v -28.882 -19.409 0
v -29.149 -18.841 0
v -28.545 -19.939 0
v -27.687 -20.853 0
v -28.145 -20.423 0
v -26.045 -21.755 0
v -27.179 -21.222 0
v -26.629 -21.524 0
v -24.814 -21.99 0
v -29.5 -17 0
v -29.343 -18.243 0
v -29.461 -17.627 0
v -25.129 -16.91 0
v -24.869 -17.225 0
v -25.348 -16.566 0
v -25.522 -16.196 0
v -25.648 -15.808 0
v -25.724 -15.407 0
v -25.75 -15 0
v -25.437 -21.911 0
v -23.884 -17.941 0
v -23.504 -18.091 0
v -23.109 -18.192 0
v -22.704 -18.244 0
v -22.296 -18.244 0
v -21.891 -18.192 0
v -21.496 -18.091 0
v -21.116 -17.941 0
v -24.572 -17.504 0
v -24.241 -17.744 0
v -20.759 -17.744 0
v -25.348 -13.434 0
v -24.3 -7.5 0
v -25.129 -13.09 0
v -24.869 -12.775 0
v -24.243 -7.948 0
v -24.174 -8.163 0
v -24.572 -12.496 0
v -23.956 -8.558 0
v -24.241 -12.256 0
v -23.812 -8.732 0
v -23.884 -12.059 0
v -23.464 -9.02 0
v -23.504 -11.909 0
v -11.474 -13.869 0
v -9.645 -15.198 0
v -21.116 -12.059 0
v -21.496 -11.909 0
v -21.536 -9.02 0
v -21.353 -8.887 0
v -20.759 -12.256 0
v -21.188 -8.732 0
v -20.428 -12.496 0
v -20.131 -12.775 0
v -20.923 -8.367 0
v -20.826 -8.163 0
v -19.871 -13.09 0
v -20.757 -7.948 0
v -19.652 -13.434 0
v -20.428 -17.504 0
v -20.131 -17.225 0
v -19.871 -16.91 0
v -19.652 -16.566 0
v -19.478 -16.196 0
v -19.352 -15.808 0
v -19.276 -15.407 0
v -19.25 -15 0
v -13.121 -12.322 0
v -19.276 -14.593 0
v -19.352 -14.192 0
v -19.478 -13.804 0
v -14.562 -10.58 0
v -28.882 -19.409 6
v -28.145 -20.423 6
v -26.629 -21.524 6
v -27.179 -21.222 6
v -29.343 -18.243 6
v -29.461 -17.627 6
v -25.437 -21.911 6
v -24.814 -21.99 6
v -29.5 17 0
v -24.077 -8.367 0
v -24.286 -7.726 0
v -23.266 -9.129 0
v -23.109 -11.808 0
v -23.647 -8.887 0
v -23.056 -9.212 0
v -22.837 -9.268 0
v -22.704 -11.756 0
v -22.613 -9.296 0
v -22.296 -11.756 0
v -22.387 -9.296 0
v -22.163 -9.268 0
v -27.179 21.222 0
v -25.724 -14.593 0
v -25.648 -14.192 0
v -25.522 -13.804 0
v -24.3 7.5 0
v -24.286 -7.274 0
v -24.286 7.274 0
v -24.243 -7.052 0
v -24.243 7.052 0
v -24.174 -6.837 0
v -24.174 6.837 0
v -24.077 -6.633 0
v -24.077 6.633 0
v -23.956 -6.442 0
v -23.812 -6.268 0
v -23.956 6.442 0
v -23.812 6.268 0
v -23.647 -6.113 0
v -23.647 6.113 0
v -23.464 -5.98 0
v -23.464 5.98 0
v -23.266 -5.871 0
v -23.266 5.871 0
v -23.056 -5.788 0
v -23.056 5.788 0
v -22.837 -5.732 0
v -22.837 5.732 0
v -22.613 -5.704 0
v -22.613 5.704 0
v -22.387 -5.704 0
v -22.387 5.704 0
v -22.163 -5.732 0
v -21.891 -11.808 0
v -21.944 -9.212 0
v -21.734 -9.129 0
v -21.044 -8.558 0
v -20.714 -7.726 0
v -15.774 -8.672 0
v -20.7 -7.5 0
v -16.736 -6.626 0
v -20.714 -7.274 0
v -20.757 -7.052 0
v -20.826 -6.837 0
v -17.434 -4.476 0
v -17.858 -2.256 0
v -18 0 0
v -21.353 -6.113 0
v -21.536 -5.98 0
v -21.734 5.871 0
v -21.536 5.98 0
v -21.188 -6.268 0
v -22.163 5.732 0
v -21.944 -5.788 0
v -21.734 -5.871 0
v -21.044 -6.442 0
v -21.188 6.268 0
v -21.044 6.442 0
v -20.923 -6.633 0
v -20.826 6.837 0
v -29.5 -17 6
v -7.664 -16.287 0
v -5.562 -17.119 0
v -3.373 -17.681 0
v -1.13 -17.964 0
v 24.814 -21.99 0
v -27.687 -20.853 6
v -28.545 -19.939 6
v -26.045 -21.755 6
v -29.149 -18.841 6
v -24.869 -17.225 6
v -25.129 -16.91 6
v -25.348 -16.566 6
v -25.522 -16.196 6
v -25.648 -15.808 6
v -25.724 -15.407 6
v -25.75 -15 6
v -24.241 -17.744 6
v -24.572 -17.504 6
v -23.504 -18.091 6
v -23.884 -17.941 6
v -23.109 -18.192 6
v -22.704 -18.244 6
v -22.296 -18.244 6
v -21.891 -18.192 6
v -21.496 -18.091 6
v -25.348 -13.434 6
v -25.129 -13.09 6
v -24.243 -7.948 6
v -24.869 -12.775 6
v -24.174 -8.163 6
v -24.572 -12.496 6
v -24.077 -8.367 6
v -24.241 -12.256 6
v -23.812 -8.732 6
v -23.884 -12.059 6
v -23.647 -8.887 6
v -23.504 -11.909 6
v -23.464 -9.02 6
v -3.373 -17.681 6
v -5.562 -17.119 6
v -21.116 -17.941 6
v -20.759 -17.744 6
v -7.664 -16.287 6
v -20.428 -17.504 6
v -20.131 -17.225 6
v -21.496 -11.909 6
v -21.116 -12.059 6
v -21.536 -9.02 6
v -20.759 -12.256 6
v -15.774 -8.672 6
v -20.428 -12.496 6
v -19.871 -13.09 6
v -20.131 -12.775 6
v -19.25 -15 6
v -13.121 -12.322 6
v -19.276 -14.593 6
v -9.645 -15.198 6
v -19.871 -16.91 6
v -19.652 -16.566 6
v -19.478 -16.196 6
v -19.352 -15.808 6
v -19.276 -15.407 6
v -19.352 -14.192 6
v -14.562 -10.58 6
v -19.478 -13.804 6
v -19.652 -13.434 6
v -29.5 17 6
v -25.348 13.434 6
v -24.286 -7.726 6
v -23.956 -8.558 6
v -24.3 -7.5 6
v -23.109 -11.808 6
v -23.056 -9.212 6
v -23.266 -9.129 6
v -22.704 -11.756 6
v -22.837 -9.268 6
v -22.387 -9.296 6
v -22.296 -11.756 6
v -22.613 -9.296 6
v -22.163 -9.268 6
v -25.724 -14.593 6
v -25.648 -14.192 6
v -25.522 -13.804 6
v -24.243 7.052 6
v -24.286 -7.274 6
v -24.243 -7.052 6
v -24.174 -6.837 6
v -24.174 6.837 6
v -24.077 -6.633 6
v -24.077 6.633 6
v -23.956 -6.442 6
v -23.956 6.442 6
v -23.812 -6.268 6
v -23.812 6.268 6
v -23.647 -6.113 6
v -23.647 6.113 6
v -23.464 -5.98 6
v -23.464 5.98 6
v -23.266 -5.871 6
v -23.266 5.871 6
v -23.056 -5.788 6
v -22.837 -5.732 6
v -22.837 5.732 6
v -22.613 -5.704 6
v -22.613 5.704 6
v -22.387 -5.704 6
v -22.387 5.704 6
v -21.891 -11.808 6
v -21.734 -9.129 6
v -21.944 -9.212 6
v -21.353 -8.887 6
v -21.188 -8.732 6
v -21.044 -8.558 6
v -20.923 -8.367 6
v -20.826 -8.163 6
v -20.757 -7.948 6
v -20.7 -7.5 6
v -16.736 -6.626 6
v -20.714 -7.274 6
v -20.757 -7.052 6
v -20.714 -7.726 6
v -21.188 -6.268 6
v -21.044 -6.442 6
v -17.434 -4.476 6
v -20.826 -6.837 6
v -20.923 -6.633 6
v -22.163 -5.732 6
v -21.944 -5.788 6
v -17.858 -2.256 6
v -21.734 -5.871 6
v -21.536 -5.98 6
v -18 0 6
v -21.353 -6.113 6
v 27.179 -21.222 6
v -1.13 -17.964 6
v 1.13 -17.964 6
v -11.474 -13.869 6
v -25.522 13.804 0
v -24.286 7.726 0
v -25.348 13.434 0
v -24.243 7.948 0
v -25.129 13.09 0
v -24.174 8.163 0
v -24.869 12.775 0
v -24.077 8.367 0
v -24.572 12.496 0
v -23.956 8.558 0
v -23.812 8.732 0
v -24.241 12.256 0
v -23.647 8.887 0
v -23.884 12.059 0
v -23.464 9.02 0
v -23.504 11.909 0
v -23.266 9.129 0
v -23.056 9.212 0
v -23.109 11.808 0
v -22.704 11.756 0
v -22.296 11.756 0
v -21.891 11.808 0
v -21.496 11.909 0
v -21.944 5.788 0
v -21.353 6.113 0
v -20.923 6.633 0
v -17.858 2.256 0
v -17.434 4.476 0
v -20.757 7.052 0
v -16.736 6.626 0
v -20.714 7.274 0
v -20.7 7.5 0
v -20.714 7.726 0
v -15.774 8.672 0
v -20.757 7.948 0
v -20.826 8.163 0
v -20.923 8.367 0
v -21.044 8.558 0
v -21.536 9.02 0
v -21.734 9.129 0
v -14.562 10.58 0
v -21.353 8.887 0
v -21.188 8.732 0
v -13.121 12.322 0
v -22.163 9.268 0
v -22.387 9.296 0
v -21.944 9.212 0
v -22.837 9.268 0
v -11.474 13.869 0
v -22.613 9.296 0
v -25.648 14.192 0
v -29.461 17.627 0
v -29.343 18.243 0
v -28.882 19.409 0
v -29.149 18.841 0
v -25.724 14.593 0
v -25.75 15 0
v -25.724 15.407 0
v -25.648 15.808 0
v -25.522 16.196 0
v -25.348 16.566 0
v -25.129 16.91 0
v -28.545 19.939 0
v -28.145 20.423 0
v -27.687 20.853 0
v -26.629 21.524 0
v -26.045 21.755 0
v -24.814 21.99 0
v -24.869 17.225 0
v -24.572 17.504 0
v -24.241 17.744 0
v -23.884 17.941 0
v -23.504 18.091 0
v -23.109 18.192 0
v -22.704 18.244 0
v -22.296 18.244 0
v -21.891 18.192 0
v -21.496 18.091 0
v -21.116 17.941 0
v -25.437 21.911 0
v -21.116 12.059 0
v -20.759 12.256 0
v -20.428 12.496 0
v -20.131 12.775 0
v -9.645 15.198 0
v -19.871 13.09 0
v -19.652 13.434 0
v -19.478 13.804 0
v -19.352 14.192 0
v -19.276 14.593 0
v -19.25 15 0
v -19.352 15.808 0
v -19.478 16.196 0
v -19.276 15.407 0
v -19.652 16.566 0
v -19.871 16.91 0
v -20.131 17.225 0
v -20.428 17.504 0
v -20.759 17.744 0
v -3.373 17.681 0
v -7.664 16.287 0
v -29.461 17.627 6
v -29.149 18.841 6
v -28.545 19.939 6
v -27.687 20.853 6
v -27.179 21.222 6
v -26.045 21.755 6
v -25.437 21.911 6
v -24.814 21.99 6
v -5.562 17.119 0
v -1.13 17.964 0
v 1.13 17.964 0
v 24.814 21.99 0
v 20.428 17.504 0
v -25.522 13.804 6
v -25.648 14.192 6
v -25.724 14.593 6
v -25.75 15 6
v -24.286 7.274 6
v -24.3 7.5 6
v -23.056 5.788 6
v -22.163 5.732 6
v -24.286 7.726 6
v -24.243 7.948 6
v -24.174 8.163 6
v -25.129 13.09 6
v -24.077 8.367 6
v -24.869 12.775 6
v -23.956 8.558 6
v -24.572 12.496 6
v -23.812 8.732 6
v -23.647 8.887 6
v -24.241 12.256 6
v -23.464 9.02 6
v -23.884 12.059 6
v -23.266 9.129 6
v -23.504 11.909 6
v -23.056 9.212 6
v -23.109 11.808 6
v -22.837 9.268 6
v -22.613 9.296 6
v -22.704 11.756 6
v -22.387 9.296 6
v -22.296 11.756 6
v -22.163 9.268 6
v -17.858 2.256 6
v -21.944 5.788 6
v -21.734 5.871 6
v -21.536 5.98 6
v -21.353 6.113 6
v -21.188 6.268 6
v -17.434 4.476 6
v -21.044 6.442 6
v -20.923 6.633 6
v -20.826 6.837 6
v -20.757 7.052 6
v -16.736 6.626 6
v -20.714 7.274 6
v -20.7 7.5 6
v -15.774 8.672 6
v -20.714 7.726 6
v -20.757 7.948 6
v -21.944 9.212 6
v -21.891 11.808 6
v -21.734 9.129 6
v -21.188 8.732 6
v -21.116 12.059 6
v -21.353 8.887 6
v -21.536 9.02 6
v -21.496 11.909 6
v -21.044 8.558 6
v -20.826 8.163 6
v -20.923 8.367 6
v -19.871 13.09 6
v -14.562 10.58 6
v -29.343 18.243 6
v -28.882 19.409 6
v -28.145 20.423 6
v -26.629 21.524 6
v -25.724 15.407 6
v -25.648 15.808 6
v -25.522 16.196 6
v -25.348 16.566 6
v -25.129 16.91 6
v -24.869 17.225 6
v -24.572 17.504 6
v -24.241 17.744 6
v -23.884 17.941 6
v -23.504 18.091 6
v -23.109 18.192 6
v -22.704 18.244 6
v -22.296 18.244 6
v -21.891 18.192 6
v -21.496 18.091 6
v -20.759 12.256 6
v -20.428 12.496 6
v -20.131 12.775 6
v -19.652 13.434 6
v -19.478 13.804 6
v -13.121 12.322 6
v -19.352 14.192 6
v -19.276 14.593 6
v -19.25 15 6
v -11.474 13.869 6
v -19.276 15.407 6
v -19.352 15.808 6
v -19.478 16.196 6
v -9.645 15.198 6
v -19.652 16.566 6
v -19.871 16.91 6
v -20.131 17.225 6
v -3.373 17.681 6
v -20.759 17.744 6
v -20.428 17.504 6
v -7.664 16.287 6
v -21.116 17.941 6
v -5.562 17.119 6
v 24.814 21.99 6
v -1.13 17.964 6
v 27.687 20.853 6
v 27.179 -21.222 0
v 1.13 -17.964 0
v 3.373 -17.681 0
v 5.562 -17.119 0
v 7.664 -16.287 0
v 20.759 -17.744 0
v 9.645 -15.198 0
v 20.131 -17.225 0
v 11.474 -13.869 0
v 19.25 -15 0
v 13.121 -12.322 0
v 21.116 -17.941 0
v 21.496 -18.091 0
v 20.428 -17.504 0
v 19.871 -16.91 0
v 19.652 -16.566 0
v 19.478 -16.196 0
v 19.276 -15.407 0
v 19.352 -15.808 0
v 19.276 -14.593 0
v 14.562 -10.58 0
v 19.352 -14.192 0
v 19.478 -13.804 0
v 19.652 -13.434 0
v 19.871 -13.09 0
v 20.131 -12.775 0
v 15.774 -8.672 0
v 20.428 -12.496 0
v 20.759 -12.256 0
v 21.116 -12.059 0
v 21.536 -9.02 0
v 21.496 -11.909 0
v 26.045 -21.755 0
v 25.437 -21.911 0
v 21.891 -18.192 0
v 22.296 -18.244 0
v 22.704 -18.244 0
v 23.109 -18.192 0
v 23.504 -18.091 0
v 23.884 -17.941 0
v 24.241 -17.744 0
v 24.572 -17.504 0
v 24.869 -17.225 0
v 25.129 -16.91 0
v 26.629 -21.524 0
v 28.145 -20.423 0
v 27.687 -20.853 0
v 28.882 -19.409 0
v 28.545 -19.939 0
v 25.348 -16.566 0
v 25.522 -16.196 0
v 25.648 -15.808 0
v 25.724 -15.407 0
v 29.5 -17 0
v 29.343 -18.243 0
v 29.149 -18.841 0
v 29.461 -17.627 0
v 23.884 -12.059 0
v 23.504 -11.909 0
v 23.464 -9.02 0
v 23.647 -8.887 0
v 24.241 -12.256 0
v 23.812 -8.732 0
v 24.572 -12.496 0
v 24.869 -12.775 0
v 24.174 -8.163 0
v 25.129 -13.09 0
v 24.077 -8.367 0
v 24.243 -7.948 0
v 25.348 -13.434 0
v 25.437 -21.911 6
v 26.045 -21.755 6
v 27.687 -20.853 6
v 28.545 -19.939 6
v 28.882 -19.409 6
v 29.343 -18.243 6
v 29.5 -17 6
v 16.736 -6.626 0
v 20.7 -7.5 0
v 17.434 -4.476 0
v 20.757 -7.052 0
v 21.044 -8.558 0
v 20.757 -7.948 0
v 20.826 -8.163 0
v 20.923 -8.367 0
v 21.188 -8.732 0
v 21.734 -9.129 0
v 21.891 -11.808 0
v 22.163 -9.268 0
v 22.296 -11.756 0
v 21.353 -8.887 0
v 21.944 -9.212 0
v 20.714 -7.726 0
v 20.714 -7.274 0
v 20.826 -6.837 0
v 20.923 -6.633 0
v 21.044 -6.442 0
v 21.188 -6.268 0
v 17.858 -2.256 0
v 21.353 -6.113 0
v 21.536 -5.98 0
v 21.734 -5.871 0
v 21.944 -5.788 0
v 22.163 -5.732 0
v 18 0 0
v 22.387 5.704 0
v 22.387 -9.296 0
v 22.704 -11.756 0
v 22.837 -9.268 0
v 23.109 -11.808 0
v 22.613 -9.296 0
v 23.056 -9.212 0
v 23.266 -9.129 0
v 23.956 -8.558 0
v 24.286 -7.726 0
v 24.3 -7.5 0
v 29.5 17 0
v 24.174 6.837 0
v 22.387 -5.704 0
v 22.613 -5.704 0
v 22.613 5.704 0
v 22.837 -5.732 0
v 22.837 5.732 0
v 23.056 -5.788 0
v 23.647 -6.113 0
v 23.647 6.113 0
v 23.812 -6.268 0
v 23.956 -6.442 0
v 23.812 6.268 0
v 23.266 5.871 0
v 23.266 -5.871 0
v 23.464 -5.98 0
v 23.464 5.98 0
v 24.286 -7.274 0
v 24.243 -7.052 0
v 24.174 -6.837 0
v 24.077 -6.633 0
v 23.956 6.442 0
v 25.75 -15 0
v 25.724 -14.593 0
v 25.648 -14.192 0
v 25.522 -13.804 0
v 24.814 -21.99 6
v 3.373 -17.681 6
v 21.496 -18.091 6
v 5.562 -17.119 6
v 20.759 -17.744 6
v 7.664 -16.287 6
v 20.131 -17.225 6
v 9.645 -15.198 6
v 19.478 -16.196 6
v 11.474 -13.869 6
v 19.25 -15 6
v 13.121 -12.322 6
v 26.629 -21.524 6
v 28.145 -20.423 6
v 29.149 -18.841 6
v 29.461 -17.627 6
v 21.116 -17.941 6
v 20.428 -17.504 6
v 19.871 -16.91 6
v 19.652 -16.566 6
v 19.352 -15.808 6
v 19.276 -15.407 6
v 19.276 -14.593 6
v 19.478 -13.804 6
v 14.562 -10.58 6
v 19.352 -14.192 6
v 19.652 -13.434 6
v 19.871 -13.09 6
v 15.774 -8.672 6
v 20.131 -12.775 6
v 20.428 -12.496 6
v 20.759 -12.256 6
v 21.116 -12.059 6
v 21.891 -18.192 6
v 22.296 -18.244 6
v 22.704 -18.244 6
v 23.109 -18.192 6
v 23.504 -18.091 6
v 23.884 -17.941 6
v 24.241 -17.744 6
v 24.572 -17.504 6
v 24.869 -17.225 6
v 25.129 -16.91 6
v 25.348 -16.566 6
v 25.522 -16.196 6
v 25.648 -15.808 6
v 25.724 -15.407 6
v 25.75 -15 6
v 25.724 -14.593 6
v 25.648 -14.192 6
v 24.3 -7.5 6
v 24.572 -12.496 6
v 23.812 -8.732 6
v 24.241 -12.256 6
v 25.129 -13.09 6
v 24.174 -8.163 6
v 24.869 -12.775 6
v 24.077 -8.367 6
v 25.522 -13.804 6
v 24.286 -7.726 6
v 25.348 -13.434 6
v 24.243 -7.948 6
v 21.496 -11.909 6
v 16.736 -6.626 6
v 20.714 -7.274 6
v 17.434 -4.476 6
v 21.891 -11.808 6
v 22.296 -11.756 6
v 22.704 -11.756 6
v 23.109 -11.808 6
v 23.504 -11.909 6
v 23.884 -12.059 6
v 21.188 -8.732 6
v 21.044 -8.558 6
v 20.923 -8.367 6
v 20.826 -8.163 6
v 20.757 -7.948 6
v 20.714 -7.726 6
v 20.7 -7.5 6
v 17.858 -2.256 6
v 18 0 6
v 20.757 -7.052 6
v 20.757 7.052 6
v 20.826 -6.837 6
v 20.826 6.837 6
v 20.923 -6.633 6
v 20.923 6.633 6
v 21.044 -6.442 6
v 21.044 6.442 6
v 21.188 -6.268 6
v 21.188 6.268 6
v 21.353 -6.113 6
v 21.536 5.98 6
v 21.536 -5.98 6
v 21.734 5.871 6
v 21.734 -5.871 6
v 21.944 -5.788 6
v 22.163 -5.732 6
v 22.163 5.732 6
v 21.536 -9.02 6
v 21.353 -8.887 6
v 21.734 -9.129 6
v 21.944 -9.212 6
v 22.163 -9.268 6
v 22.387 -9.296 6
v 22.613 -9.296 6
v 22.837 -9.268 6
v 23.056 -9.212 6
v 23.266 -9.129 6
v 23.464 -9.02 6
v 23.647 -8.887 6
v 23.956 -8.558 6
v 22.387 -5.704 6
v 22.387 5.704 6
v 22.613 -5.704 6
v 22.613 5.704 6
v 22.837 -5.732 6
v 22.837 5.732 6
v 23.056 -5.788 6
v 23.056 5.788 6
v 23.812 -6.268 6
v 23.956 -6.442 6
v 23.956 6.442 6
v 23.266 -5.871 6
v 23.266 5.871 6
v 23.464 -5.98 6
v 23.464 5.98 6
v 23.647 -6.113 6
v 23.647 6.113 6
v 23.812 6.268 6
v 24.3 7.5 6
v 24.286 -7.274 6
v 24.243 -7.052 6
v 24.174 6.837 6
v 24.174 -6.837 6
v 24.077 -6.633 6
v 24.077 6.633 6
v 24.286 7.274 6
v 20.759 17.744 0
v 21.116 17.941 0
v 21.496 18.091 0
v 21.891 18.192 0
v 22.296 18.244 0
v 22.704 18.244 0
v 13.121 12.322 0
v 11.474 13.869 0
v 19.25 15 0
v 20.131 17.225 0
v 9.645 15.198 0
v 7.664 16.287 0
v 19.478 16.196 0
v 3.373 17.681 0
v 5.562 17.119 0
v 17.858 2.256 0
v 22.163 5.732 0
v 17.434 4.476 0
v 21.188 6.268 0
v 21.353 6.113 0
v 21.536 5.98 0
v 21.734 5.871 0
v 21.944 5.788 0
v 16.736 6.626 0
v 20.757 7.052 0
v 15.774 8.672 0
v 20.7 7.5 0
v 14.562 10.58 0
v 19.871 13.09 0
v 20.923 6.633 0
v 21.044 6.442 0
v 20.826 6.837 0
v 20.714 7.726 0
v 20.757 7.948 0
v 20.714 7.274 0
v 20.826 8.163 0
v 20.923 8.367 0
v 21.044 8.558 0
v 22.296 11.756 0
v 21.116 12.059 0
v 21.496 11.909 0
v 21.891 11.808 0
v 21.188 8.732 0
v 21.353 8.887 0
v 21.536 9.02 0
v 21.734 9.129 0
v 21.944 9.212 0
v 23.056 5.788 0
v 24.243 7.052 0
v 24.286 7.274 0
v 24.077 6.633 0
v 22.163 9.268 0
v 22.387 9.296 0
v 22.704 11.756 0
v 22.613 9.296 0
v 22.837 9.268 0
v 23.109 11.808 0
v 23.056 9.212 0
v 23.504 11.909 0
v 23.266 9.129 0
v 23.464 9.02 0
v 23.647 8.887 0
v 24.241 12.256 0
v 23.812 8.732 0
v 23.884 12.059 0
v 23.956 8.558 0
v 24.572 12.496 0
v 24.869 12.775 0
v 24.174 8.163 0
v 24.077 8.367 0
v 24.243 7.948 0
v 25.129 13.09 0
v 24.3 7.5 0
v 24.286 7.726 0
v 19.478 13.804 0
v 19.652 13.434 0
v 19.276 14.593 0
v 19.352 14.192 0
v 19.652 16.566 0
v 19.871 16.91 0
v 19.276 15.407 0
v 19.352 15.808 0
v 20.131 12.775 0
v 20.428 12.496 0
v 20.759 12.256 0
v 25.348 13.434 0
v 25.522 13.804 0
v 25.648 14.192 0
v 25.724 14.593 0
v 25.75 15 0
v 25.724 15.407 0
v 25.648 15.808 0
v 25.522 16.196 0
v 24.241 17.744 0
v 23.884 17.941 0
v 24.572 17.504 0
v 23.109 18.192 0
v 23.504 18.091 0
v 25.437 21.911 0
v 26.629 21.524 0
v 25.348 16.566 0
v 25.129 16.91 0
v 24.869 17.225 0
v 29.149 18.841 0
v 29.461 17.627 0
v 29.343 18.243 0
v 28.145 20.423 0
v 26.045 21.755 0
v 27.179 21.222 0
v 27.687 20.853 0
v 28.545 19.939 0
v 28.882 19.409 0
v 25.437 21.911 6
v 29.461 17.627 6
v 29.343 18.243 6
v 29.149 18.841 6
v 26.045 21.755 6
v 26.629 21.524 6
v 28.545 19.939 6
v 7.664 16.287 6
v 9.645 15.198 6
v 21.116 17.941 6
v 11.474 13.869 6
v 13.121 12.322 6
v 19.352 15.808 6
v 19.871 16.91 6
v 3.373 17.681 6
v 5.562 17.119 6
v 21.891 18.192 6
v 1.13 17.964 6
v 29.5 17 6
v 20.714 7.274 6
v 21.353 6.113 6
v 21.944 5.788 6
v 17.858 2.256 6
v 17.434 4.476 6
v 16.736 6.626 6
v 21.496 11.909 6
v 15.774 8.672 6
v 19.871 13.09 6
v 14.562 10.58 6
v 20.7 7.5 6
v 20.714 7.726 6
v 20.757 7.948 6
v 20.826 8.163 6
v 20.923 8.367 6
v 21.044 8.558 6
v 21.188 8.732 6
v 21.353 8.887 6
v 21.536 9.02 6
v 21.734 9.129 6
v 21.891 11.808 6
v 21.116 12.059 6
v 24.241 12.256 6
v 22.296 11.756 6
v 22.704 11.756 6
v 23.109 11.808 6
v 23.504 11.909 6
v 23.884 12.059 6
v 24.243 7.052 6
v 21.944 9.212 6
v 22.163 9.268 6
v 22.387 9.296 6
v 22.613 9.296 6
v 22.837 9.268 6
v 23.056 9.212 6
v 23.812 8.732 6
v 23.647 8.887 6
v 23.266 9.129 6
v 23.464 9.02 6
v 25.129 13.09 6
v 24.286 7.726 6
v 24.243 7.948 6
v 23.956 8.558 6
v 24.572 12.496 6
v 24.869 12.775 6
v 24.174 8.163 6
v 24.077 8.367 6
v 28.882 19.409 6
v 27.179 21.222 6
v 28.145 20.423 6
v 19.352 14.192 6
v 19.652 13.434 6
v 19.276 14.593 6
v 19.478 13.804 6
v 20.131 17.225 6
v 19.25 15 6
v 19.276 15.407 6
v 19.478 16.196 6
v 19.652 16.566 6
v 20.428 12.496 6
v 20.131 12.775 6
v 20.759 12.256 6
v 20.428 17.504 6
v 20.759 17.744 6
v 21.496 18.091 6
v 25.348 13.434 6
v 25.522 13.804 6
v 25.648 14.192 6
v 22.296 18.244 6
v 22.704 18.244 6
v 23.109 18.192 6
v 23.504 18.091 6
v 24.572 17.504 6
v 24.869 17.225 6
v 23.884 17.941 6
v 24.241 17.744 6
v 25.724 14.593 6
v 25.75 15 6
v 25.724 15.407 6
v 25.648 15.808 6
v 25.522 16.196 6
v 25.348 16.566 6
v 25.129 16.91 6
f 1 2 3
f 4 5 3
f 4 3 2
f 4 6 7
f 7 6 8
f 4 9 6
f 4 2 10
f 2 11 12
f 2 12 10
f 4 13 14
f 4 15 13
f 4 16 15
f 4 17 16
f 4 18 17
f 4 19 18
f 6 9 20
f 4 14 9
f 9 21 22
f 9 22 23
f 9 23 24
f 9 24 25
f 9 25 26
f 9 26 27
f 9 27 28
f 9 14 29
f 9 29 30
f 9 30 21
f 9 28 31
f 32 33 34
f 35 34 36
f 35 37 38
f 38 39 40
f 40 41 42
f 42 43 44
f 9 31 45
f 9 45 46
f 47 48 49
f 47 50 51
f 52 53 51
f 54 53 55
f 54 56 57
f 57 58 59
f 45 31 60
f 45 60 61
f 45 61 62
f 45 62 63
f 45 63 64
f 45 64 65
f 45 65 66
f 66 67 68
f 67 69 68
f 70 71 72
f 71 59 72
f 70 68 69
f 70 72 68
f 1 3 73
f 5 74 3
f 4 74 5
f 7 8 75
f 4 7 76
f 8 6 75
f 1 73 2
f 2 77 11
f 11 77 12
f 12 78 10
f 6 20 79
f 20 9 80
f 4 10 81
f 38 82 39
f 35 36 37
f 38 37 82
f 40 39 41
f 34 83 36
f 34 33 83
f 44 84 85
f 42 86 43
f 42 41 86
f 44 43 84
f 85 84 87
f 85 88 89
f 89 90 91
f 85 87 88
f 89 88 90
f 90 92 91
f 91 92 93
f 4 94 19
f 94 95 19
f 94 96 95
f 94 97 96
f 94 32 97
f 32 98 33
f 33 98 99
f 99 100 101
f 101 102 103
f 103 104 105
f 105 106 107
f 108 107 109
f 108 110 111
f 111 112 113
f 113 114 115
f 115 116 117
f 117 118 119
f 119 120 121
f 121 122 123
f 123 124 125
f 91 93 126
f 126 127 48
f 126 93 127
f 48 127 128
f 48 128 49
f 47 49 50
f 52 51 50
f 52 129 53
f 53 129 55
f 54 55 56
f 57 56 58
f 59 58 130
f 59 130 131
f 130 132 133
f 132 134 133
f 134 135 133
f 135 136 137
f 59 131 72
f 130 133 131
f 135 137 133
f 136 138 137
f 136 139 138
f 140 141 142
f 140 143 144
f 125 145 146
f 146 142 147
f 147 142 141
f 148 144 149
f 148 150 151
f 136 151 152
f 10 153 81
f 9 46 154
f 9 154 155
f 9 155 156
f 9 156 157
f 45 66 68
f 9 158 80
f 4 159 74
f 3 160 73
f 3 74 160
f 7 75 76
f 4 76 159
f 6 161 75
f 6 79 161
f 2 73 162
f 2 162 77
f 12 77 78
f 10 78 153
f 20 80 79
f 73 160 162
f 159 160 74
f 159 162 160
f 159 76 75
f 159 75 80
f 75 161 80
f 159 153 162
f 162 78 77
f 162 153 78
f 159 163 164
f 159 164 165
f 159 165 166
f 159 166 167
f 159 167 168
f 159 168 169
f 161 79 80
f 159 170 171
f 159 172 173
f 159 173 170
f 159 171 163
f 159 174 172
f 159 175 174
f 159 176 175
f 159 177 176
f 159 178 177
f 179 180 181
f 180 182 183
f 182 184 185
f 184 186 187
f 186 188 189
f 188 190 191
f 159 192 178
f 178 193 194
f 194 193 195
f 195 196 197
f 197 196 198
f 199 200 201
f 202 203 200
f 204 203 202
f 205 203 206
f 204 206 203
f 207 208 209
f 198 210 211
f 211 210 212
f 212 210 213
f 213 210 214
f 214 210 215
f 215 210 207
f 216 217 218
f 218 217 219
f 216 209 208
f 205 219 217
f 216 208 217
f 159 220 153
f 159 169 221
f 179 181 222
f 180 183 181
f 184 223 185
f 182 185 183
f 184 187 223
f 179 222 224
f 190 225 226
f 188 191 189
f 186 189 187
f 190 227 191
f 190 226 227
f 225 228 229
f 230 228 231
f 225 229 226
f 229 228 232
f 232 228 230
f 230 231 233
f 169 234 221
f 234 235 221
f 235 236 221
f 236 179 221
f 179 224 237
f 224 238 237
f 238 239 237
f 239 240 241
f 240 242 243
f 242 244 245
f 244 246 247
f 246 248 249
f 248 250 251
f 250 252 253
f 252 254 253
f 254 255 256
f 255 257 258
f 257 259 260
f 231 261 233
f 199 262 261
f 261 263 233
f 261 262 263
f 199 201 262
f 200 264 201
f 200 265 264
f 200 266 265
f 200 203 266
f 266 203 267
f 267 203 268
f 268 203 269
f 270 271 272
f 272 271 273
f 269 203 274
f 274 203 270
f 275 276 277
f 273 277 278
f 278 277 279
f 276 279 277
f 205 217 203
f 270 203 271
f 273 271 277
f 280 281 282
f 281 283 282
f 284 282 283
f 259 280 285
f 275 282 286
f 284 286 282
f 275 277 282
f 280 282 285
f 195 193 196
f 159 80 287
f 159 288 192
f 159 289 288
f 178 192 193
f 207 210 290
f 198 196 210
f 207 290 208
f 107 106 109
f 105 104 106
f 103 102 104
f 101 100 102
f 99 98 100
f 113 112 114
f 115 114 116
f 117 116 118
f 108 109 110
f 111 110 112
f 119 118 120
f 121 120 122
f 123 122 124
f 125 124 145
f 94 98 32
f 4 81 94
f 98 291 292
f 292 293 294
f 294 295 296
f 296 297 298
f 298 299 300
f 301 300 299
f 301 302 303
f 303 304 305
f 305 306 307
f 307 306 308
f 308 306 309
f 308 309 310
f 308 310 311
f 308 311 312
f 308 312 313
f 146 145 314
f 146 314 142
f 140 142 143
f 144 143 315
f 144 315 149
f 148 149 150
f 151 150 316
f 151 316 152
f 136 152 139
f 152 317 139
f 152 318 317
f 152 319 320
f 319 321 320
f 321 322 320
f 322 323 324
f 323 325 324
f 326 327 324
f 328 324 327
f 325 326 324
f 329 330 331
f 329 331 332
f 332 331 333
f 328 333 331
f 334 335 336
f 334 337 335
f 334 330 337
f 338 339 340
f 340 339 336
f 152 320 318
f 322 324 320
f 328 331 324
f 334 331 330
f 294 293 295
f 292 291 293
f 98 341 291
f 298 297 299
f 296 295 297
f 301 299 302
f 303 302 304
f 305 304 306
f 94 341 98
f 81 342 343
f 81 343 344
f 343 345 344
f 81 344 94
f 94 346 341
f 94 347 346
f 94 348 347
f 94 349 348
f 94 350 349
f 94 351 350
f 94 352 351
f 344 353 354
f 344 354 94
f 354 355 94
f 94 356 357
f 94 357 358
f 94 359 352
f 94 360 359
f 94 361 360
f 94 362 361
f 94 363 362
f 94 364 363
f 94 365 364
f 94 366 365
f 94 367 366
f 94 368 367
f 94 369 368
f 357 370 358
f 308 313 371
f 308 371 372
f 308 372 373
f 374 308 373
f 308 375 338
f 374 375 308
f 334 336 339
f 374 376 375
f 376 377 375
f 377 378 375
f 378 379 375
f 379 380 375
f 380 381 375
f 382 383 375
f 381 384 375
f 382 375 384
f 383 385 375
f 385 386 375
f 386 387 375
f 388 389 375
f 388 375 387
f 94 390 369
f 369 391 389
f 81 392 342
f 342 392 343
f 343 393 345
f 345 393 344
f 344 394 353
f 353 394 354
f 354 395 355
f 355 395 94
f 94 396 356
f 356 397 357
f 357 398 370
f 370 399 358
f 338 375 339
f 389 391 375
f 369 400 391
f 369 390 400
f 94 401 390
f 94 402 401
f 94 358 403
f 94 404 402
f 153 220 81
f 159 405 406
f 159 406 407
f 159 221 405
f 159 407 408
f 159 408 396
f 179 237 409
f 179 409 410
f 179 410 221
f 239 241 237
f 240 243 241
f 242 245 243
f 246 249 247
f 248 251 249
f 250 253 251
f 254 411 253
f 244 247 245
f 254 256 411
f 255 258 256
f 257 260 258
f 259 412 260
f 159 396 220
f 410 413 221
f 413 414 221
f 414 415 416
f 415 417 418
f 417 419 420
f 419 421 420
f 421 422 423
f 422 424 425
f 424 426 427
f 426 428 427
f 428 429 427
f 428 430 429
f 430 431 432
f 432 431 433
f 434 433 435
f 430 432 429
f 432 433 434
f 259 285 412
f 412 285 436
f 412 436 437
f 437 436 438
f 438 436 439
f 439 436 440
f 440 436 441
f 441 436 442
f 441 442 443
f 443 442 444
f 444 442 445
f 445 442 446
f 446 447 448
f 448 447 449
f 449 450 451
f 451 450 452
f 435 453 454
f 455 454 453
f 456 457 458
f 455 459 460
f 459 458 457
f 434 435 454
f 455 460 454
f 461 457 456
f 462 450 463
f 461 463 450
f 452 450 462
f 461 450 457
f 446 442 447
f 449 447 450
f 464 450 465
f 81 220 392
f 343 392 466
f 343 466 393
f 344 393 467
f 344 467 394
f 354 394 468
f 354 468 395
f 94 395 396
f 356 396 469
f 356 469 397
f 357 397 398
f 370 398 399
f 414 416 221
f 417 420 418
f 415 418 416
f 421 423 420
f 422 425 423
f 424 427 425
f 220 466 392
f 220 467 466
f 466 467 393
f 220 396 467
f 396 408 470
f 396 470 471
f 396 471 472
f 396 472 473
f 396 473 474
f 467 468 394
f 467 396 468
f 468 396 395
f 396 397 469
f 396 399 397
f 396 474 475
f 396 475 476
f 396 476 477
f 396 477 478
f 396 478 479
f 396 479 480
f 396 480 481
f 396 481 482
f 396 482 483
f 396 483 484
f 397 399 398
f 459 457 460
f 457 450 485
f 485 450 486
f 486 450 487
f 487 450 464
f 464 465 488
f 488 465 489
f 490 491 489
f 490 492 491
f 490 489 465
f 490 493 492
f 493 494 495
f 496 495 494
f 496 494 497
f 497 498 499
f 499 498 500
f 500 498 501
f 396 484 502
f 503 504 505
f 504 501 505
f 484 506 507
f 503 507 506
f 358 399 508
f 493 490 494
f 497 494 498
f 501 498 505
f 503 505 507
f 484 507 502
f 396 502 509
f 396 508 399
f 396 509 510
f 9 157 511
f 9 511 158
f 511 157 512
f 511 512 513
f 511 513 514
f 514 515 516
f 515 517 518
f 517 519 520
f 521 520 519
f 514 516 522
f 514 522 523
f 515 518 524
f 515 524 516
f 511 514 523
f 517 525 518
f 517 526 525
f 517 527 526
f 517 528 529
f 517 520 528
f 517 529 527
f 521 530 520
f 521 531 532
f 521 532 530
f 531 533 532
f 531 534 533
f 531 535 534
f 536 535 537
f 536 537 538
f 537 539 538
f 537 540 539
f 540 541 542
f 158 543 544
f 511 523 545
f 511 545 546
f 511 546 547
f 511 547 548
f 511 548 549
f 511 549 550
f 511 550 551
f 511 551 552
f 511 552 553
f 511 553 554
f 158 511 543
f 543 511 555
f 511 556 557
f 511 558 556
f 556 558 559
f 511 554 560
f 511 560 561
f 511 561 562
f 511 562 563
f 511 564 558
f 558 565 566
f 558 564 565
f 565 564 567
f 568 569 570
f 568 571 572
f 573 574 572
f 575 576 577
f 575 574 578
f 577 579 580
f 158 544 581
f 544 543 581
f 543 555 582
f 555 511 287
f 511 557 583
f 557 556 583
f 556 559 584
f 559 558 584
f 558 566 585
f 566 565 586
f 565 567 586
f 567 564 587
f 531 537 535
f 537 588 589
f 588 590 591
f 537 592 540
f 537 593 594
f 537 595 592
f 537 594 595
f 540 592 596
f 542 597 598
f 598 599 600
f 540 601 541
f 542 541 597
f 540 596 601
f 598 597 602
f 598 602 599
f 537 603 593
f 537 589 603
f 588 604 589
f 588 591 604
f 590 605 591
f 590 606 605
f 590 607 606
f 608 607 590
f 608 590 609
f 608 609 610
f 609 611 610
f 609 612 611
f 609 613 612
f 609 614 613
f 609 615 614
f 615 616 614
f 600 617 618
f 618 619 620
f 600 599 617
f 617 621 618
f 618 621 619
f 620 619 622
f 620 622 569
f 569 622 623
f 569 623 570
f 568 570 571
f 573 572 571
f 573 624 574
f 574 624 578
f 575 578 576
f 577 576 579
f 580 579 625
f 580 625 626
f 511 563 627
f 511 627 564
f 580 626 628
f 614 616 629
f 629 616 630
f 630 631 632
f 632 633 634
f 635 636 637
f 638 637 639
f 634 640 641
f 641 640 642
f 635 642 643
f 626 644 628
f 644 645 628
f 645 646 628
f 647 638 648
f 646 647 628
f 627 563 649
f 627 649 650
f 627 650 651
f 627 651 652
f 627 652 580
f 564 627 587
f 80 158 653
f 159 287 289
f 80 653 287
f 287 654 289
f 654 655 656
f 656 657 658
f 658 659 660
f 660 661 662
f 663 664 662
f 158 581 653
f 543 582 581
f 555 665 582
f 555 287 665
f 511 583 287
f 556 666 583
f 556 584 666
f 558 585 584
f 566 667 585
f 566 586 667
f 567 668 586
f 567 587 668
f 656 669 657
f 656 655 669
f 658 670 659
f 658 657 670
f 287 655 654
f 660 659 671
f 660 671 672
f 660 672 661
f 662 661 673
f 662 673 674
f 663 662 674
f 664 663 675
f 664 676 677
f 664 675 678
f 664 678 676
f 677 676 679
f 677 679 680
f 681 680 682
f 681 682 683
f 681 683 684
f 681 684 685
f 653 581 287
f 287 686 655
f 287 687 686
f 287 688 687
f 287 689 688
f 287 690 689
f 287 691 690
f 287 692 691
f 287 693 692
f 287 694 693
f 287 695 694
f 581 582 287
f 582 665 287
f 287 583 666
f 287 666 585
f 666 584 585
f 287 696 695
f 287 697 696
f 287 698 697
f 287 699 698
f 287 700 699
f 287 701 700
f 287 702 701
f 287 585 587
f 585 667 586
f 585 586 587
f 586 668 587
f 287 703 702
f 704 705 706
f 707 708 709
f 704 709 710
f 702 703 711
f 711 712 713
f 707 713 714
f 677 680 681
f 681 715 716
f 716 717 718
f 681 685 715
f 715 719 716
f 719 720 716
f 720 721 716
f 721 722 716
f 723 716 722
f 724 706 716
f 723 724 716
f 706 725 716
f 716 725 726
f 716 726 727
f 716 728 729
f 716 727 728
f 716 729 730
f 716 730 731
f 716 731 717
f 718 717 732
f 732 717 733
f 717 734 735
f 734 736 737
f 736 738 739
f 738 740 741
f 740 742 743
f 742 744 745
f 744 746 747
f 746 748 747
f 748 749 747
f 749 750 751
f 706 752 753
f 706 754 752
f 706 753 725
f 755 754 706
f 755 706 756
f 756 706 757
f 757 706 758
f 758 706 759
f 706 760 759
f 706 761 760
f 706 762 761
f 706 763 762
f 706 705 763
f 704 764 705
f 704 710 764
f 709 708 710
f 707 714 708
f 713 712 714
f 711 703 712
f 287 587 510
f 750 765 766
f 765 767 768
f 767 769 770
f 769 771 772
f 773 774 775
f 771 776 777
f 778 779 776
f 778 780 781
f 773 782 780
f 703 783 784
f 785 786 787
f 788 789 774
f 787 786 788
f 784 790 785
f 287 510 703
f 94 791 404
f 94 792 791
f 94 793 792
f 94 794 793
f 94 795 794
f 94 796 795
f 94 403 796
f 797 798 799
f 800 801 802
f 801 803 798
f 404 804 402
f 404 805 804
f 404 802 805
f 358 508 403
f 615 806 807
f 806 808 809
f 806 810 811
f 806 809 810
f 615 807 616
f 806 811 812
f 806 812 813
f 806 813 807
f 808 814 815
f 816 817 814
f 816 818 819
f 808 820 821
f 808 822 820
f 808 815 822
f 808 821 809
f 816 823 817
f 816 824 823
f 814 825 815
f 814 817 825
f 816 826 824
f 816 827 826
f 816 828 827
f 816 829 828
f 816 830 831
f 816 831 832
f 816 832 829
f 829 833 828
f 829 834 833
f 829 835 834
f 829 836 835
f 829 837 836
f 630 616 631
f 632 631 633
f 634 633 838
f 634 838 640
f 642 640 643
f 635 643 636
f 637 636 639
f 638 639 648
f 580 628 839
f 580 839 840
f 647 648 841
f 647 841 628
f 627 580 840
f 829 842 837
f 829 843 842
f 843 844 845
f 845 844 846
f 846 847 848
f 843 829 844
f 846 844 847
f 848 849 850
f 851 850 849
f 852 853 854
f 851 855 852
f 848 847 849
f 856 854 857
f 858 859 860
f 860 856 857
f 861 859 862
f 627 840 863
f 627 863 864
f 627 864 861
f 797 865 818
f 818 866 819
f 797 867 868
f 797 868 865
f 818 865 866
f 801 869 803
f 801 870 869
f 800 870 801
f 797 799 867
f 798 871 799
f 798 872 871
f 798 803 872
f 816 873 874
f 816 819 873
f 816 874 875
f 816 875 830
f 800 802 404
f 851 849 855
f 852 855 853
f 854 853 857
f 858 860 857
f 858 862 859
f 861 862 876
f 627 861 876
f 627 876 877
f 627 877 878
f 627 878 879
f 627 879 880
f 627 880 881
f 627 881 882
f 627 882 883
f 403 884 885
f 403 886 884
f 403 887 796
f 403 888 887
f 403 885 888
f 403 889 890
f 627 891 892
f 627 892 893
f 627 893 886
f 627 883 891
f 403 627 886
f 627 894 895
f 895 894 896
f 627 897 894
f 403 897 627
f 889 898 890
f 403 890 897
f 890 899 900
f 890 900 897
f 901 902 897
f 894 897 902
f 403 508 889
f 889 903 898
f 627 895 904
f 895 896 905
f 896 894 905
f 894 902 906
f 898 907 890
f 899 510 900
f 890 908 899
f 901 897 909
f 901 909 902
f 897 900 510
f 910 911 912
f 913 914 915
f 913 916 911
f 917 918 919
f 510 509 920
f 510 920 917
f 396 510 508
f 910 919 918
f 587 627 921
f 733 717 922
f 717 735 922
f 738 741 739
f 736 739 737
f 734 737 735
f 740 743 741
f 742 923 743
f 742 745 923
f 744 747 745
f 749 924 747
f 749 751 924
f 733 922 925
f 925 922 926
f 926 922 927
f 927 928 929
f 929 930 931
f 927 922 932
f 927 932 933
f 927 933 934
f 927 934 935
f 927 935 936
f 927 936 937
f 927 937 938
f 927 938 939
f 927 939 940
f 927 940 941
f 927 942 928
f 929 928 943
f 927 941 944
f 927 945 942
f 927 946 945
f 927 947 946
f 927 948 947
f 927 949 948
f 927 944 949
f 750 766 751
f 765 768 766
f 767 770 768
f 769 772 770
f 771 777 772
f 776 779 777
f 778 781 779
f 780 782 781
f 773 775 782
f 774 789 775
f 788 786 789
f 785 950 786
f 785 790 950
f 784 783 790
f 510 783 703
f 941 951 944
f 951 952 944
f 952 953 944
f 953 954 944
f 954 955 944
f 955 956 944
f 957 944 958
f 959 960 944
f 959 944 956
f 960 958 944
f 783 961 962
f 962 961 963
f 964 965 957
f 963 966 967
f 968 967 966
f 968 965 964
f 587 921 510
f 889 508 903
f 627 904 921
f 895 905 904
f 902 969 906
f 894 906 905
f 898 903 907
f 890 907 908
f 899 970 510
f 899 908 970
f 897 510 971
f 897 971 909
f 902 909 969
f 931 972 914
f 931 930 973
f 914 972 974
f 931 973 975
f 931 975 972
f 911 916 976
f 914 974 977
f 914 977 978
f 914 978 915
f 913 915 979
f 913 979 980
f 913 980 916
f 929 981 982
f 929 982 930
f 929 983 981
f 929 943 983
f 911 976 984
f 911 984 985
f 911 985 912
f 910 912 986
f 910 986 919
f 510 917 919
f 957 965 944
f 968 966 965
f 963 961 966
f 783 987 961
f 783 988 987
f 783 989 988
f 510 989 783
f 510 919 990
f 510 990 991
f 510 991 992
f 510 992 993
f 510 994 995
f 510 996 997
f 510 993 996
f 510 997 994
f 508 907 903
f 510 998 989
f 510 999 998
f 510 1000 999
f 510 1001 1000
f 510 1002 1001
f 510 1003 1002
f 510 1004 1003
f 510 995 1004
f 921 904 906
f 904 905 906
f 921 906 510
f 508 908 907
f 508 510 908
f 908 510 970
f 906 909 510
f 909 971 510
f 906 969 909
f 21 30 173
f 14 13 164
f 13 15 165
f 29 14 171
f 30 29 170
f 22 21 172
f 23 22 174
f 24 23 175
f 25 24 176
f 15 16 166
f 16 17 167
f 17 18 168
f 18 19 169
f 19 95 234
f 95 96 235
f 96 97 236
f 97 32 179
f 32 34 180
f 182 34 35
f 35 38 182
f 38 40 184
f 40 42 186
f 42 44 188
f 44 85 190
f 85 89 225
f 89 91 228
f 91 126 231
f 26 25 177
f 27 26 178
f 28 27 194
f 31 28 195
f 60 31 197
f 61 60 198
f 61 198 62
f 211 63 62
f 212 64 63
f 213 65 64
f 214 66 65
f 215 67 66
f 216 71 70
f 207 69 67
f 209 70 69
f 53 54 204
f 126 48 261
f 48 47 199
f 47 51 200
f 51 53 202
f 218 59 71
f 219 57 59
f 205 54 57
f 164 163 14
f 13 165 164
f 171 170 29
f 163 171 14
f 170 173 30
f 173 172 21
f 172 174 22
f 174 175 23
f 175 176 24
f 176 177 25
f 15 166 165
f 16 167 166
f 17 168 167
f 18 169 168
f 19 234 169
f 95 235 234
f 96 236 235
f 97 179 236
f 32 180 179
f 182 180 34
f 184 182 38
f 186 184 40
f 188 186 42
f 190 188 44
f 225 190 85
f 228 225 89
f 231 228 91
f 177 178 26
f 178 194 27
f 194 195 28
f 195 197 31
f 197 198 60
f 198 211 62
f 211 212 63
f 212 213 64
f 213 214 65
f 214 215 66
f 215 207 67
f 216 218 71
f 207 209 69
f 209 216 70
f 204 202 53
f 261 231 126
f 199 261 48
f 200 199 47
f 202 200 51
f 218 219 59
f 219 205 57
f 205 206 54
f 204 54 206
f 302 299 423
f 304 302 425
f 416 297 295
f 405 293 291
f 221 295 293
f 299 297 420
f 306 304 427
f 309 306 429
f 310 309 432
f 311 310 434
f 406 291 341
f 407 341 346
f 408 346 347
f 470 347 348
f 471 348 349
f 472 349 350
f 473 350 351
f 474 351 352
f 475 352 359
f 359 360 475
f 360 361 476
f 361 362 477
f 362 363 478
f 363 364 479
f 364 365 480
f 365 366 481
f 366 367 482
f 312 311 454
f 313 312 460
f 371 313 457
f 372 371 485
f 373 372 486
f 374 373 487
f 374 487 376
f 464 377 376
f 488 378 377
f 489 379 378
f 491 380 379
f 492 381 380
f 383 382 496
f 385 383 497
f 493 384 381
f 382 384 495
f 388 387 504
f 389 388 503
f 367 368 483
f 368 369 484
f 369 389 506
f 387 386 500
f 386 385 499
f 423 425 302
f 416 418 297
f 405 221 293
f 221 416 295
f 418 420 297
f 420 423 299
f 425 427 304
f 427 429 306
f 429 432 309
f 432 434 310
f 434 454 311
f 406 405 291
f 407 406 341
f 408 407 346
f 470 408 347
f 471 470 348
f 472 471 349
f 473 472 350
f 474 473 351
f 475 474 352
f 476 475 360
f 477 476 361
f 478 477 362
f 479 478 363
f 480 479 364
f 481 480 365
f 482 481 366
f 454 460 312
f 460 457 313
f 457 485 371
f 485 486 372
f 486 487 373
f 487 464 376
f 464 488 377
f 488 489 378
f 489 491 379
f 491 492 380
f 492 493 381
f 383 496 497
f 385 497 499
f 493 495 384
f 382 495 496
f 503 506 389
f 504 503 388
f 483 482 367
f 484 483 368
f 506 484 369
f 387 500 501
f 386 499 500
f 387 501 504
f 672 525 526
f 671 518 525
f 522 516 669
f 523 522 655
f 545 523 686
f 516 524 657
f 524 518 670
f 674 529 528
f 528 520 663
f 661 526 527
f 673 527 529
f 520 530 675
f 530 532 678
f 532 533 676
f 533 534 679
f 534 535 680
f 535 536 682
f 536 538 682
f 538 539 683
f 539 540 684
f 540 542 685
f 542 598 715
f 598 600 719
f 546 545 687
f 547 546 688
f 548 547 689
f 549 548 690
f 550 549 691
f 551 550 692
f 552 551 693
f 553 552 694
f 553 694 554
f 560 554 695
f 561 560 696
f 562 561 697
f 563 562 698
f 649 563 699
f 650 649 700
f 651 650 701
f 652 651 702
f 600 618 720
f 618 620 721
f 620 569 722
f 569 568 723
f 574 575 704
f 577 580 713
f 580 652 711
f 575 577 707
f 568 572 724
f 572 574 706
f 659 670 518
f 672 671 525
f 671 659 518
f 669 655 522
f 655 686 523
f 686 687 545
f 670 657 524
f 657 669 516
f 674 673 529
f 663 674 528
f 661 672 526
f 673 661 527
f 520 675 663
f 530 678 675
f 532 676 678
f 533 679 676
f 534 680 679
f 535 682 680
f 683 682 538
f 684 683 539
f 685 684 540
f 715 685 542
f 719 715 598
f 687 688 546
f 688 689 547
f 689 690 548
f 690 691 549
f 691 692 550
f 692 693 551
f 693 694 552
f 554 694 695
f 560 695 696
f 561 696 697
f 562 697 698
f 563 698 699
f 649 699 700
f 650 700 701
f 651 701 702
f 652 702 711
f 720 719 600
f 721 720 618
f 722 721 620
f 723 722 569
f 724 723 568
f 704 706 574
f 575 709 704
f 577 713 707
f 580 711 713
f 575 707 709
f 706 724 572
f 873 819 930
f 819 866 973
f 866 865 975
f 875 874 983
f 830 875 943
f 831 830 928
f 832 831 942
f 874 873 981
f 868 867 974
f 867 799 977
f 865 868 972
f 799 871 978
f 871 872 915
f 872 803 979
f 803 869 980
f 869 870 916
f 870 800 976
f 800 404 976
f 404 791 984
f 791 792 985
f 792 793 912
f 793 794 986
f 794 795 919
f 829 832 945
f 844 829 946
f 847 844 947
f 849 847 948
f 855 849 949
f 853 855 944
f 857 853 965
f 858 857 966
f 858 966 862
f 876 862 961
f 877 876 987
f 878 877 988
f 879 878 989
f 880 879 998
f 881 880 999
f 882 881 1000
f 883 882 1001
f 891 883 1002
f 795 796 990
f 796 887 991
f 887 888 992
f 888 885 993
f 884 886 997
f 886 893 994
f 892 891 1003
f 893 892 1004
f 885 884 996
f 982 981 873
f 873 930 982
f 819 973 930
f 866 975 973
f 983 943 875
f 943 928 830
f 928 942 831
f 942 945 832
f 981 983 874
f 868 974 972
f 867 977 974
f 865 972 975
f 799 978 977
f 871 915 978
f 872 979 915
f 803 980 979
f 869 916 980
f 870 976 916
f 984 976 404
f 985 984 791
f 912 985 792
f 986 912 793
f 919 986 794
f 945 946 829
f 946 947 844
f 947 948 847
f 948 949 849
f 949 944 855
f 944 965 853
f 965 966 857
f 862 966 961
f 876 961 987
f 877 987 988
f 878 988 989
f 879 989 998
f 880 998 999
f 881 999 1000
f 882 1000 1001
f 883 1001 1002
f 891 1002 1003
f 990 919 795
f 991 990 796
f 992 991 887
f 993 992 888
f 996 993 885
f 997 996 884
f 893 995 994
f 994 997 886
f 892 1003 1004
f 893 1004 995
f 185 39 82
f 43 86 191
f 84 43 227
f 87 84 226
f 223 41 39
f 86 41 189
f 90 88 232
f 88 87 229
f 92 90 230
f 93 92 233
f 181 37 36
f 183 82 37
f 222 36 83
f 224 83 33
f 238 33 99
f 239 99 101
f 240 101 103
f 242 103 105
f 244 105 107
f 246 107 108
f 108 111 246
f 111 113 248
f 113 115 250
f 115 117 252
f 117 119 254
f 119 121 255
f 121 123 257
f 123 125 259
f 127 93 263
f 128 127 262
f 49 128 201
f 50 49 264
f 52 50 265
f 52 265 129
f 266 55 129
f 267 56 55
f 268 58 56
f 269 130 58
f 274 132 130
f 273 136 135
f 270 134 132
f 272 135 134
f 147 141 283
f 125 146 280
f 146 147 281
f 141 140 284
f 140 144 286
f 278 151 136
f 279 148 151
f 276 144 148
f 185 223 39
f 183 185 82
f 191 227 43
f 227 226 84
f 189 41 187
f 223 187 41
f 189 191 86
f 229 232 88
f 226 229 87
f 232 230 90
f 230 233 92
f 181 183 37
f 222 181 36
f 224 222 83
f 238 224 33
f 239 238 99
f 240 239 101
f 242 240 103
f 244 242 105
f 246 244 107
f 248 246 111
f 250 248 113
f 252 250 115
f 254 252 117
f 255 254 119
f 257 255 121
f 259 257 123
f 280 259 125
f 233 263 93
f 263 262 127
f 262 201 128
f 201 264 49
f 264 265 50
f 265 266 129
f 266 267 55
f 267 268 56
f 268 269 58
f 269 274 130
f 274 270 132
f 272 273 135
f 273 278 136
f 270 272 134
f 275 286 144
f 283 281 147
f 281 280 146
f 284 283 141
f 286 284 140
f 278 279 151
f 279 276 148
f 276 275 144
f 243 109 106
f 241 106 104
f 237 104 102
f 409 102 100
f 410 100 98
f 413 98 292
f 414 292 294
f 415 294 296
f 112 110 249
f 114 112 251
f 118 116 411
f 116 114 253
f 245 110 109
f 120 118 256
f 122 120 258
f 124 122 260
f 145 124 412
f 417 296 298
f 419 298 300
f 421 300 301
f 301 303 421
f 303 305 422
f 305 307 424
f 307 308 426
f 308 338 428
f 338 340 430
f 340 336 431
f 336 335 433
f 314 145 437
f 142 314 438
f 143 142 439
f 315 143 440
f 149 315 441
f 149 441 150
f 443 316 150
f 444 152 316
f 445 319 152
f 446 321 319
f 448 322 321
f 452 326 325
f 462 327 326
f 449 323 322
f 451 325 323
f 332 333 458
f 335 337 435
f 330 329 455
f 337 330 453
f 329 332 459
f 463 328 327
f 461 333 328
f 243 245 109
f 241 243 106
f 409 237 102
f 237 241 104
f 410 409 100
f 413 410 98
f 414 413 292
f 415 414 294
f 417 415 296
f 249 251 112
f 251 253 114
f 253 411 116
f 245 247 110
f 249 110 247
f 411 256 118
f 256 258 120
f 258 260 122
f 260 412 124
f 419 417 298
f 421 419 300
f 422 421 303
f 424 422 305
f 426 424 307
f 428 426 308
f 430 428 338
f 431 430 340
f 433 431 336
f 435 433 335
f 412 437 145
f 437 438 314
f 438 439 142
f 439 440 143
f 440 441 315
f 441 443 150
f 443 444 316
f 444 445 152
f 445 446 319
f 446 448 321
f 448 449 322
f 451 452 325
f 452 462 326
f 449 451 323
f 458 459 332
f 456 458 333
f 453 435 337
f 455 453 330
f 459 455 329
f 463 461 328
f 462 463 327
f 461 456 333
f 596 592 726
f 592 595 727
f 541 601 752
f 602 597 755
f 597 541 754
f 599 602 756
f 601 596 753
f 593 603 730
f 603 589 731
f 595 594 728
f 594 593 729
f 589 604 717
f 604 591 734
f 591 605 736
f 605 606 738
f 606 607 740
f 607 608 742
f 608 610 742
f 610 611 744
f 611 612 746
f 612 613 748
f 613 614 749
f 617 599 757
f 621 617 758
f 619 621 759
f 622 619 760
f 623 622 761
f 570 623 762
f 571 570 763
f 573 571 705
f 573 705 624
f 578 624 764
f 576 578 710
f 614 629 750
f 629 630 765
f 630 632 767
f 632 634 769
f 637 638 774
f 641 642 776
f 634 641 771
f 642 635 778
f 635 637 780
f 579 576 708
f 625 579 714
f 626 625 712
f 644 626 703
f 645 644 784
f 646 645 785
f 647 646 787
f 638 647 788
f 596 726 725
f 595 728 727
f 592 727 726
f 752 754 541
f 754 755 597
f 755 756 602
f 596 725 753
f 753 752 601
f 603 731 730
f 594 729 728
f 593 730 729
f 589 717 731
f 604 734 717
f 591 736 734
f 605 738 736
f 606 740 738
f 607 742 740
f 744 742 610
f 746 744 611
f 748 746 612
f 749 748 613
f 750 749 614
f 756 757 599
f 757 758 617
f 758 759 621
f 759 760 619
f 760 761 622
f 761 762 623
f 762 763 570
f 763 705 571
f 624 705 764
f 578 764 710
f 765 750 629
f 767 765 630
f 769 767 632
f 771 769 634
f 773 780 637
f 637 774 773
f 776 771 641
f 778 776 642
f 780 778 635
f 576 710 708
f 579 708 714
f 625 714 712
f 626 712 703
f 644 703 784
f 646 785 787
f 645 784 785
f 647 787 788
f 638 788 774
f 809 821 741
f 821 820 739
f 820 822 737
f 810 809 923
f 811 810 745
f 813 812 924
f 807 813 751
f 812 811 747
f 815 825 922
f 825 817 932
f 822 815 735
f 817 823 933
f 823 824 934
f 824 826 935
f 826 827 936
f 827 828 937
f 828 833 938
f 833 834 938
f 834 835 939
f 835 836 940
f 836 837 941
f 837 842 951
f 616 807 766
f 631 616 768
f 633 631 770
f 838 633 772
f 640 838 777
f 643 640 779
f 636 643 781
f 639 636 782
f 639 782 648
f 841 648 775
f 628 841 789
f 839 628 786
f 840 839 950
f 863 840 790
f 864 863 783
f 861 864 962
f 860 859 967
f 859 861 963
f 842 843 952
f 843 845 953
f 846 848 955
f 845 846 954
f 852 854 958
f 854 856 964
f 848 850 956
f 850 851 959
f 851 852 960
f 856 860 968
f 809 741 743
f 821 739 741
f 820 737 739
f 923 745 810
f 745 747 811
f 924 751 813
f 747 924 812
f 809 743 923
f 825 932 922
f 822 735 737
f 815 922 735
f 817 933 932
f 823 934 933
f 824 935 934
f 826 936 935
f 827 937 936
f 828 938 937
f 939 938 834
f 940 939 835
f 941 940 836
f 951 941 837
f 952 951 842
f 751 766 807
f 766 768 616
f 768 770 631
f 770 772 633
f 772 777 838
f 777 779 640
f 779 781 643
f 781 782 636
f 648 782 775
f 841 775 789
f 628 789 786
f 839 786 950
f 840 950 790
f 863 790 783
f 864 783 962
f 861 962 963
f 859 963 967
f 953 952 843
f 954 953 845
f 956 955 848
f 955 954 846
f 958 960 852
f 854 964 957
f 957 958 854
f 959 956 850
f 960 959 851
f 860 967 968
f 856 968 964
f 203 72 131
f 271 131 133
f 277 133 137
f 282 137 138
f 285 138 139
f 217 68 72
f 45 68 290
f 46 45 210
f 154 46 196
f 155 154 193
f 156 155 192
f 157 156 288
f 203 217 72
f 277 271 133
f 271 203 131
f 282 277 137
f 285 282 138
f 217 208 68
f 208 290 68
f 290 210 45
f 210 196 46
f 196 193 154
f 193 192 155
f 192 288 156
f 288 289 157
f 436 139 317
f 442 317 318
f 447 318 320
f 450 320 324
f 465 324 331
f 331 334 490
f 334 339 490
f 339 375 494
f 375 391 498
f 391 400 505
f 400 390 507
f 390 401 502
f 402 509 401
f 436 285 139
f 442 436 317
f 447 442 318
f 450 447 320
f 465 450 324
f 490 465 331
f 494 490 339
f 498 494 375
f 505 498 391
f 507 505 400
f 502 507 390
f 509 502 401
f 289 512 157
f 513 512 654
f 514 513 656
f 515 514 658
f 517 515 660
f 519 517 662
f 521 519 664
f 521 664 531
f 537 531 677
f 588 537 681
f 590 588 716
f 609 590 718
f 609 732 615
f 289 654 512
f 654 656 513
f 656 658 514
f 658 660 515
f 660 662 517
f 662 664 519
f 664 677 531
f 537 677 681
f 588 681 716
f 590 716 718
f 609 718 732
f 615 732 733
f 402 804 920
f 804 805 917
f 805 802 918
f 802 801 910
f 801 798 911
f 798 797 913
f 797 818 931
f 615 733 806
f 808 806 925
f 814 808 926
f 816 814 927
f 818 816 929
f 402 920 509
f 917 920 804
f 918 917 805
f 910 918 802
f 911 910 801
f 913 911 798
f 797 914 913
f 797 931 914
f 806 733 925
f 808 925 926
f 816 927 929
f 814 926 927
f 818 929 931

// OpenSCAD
$fn = 50;

difference() {
	union() {
		hull() {
			translate(v = [-24.5, 17.0, 0]) {
				cylinder(h = 6, r = 5);
			}
			translate(v = [24.5, 17.0, 0]) {
				cylinder(h = 6, r = 5);
			}
			translate(v = [-24.5, -17.0, 0]) {
				cylinder(h = 6, r = 5);
			}
			translate(v = [24.5, -17.0, 0]) {
				cylinder(h = 6, r = 5);
			}
		}
	}
	union() {
		translate(v = [-22.5, -15.0, 0]) {
			cylinder(h = 6, r = 3.25);
		}
		translate(v = [-22.5, 15.0, 0]) {
			cylinder(h = 6, r = 3.25);
		}
		translate(v = [22.5, -15.0, 0]) {
			cylinder(h = 6, r = 3.25);
		}
		translate(v = [22.5, 15.0, 0]) {
			cylinder(h = 6, r = 3.25);
		}
		translate(v = [-22.5, -7.5, 0]) {
			cylinder(h = 6, r = 1.8);
		}
		translate(v = [-22.5, 7.5, 0]) {
			cylinder(h = 6, r = 1.8);
		}
		translate(v = [22.5, -7.5, 0]) {
			cylinder(h = 6, r = 1.8);
		}
		translate(v = [22.5, 7.5, 0]) {
			cylinder(h = 6, r = 1.8);
		}
		cylinder(h = 6, r = 18.0);
	}
}
